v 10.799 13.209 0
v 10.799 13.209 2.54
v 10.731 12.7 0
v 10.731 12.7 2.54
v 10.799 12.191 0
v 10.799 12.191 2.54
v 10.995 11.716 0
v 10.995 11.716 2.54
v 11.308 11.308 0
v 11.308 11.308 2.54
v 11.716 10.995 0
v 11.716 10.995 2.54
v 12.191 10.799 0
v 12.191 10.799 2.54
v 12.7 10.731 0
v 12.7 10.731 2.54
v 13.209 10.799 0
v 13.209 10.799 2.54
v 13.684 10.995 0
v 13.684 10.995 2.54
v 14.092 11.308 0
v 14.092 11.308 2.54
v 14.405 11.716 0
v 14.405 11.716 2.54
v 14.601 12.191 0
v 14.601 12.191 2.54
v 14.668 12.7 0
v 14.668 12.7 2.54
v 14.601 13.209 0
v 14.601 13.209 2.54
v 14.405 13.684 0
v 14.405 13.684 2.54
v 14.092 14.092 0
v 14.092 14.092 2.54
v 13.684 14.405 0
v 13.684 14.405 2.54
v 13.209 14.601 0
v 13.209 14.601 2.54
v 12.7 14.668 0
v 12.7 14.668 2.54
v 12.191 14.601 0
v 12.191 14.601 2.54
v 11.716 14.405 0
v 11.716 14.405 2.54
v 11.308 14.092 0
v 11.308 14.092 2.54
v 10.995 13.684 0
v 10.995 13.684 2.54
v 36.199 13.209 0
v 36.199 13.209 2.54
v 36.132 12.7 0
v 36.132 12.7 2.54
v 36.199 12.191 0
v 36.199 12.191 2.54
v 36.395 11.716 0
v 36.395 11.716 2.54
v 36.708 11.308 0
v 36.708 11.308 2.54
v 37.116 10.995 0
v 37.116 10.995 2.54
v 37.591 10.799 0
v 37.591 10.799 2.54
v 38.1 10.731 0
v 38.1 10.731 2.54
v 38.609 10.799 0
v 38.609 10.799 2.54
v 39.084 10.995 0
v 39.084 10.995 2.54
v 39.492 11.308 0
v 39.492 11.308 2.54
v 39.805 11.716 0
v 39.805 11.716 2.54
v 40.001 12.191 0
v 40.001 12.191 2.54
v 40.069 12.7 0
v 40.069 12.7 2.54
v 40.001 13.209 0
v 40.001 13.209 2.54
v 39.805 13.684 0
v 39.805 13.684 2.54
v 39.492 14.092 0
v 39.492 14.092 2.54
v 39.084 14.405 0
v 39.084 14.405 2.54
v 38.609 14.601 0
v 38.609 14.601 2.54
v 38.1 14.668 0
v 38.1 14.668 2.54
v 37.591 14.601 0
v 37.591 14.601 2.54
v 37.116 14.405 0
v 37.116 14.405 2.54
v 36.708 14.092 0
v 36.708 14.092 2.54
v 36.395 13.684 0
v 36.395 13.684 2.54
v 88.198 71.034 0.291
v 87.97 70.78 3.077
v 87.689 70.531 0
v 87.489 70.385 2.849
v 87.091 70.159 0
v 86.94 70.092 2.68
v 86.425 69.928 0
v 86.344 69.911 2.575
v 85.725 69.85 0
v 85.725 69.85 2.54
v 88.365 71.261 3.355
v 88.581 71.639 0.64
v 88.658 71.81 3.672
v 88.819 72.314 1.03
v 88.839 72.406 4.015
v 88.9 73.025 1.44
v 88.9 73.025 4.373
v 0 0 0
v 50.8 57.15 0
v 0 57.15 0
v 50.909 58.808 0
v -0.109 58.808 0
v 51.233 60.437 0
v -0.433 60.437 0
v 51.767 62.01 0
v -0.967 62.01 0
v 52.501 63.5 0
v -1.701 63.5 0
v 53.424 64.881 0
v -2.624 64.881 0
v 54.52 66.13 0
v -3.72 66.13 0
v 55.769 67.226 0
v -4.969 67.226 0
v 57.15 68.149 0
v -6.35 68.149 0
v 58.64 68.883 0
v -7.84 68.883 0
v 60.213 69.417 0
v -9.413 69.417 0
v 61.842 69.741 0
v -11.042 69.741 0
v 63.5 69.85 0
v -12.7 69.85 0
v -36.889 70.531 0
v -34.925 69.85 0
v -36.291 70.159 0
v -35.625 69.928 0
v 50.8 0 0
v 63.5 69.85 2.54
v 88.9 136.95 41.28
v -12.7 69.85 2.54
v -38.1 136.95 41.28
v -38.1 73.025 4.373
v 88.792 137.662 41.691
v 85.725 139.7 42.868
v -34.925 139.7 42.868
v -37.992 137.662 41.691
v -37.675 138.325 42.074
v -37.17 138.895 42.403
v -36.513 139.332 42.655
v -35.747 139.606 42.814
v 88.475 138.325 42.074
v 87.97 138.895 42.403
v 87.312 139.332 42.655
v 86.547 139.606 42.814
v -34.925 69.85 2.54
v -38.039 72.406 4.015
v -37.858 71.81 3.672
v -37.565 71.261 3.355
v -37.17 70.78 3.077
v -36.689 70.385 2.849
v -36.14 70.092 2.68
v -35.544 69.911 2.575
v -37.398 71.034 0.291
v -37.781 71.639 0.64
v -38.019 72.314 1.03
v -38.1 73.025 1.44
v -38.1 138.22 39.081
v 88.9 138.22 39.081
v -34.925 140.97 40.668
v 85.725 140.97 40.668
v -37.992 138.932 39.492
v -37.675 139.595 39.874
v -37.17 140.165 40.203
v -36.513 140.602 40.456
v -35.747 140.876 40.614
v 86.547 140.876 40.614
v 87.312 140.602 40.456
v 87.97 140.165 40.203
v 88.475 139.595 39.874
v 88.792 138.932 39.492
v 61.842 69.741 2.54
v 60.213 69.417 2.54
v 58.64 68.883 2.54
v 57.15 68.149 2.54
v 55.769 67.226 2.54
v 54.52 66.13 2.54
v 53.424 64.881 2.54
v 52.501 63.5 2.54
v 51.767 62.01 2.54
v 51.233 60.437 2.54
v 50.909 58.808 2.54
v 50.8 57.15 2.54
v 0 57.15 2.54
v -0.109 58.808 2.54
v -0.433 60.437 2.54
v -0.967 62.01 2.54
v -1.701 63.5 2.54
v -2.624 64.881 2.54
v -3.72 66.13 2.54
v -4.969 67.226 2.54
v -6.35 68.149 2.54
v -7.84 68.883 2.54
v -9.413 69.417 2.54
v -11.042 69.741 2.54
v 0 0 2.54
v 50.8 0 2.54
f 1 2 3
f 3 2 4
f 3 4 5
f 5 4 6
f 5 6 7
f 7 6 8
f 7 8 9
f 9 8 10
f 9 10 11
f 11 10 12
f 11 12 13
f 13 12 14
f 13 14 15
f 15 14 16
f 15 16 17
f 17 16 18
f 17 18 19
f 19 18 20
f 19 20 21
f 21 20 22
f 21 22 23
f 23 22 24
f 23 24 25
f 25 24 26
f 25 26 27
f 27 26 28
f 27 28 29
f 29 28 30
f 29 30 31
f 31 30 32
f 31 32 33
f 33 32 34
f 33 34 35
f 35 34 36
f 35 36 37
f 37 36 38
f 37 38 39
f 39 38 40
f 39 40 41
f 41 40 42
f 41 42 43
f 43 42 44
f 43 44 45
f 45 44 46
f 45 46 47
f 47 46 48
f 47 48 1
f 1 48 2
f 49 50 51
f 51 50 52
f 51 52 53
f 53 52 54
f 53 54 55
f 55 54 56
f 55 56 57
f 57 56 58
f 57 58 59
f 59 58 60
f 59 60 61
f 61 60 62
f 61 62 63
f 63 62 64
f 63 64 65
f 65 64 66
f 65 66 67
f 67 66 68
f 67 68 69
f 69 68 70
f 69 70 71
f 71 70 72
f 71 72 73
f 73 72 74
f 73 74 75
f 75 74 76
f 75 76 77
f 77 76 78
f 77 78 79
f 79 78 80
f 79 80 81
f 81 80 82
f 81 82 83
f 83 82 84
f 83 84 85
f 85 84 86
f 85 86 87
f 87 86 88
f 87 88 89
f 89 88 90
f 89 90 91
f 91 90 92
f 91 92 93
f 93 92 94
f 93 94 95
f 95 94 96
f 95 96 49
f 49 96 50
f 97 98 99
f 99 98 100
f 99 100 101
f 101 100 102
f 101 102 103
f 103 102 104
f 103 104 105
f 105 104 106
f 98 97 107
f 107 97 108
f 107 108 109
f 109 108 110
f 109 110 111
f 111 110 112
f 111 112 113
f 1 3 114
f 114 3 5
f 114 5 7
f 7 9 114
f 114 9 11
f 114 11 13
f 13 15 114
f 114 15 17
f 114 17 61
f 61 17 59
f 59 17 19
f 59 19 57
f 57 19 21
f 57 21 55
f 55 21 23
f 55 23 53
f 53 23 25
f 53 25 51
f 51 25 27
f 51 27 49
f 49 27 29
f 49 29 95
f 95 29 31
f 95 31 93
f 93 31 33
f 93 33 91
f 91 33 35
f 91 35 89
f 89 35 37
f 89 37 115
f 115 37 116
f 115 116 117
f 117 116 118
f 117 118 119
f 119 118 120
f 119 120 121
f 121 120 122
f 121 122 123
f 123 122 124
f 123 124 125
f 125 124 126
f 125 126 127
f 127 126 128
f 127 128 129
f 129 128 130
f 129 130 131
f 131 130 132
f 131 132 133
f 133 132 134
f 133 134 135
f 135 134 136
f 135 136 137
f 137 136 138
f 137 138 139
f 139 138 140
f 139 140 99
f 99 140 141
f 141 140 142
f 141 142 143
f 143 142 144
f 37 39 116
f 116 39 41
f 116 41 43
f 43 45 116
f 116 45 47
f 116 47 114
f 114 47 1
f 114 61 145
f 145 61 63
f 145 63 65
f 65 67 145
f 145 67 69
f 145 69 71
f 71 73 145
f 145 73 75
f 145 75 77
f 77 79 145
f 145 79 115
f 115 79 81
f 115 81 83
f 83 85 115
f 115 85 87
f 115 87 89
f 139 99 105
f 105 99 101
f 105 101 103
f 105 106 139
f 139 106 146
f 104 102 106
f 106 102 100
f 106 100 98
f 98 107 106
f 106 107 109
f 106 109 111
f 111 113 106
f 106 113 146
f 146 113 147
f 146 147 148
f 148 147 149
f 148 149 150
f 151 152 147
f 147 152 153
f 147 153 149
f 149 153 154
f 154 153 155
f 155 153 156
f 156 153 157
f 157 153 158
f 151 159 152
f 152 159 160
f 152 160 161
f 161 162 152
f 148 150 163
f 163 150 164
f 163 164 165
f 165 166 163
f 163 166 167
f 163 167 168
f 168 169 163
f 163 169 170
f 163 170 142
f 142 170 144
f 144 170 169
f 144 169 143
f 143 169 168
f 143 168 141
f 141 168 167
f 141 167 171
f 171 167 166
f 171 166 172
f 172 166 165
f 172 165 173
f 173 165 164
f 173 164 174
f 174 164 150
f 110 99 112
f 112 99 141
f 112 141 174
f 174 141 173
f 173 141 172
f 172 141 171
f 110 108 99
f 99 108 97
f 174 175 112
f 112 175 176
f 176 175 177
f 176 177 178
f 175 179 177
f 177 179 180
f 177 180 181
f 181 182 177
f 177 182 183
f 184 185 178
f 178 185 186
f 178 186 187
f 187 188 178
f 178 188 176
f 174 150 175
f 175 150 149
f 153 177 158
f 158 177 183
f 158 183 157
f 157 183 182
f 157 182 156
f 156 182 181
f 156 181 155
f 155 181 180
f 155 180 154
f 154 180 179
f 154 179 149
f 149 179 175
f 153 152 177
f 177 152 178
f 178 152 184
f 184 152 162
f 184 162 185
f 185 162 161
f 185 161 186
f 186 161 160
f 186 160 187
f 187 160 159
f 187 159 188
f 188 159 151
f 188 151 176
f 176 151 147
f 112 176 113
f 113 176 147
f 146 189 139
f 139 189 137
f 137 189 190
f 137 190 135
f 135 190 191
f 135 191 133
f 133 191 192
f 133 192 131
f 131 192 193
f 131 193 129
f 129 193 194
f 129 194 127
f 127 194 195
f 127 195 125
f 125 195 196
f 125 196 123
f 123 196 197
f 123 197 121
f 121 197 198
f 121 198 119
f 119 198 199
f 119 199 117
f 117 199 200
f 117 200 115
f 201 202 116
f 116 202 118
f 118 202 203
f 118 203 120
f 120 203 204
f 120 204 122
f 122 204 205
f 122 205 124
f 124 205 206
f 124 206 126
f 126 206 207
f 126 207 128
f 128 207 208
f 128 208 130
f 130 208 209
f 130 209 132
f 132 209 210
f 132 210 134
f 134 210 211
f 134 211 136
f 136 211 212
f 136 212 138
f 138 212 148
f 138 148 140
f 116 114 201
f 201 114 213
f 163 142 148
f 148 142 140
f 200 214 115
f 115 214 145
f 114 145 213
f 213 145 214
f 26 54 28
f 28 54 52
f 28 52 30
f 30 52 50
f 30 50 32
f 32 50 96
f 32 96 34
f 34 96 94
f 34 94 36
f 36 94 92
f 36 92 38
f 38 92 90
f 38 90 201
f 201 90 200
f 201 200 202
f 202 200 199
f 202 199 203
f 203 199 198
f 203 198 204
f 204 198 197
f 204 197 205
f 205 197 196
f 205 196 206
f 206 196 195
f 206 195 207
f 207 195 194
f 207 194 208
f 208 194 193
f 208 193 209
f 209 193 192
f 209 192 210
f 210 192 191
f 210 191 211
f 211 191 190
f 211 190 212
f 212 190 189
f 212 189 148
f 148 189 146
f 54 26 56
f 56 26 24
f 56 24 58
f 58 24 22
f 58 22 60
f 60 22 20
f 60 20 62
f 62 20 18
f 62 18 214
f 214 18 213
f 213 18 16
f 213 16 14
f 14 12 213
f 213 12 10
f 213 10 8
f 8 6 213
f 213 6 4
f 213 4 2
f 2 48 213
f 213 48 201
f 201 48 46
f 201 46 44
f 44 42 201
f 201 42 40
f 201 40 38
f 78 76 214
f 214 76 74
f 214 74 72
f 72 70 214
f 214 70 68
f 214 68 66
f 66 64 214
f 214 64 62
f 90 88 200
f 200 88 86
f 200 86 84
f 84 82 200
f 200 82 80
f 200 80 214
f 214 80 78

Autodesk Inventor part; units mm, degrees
ref_plane "YZ Plane" through (0, 0, 0) normal (1, 0, 0) x (0, 1, 0)
ref_plane "XZ Plane" through (0, 0, 0) normal (0, 1, 0) x (-1, 0, 0)
ref_plane "XY Plane" through (0, 0, 0) normal (0, 0, 1) x (1, 0, 0)
sketch "Sketch1" plane through (0, 0, 0) normal (0, 0, 1) x (1, 0, 0)
  line L0 (0, 0) -> (50.8, 0)
  line L1 (50.8, 0) -> (50.8, 69.85)
  line L2 (50.8, 69.85) -> (0, 69.85)
  line L3 (0, 69.85) -> (0, 0)
  dimension "d0" = 50.8
  dimension "d1" = 69.85
extrude "Extrusion1" add sketch "Sketch1" along normal blind 2.54
sketch "Sketch2" plane through (50.8, 0, 0) normal (1, 0, 0) x (0, 0, -1)
  line L0 (0, 0) -> (0, 69.85) construction
  line L1 (0, 69.85) -> (0, 139.7) construction
  line L2 (-2.54, 0) -> (-2.54, 69.85) construction
  line L3 (-2.54, 69.85) -> (-42.8679, 139.7)
  line L4 (-2.54, 69.85) -> (78.1158, 69.85) construction
  line L5 (-42.8679, 139.7) -> (-40.6682, 140.97)
  line L6 (-40.6682, 140.97) -> (0, 70.5306)
  line L7 (0, 69.85) -> (-2.54, 69.85) projected
  line L8 (0, 70.5306) -> (0, 69.85)
  dimension "d4" = 69.85
  dimension "d5" = 120
  dimension "d6" = 2.54
extrude "Extrusion2" add sketch "Sketch2" along normal blind 38.1 and the other way blind 88.9
fillet "Fillet1" radius 12.7 2 edges at (0, 69.85, 1.27) (50.8, 69.85, 1.27)
fillet "Fillet2" radius 3.175 4 edges at (88.9, 140.335, 41.7681) (-38.1, 140.335, 41.7681) (-38.1, 69.85, 1.27) (88.9, 69.85, 1.27)
sketch "Sketch3" plane through (0, 0, 2.54) normal (0, 0, 1) x (1, 0, 0)
  line L0 (0, 0) -> (50.8, 0) projected
  line L1 (0, 57.15) -> (0, 0) projected
  line L2 (50.8, 0) -> (50.8, 57.15) projected
  point P0 (12.7, 12.7)
  point P1 (38.1, 12.7)
  dimension "d13" = 12.7
  dimension "d14" = 12.7
  dimension "d15" = 12.7
  dimension "d16" = 12.7
hole "Hole1" at (12.7, 12.7, 2.54) at (38.1, 12.7, 2.54) direction (0, 0, -1) diameter 3.937 end through all
properties part number "DeliveryBoxBackstop"
